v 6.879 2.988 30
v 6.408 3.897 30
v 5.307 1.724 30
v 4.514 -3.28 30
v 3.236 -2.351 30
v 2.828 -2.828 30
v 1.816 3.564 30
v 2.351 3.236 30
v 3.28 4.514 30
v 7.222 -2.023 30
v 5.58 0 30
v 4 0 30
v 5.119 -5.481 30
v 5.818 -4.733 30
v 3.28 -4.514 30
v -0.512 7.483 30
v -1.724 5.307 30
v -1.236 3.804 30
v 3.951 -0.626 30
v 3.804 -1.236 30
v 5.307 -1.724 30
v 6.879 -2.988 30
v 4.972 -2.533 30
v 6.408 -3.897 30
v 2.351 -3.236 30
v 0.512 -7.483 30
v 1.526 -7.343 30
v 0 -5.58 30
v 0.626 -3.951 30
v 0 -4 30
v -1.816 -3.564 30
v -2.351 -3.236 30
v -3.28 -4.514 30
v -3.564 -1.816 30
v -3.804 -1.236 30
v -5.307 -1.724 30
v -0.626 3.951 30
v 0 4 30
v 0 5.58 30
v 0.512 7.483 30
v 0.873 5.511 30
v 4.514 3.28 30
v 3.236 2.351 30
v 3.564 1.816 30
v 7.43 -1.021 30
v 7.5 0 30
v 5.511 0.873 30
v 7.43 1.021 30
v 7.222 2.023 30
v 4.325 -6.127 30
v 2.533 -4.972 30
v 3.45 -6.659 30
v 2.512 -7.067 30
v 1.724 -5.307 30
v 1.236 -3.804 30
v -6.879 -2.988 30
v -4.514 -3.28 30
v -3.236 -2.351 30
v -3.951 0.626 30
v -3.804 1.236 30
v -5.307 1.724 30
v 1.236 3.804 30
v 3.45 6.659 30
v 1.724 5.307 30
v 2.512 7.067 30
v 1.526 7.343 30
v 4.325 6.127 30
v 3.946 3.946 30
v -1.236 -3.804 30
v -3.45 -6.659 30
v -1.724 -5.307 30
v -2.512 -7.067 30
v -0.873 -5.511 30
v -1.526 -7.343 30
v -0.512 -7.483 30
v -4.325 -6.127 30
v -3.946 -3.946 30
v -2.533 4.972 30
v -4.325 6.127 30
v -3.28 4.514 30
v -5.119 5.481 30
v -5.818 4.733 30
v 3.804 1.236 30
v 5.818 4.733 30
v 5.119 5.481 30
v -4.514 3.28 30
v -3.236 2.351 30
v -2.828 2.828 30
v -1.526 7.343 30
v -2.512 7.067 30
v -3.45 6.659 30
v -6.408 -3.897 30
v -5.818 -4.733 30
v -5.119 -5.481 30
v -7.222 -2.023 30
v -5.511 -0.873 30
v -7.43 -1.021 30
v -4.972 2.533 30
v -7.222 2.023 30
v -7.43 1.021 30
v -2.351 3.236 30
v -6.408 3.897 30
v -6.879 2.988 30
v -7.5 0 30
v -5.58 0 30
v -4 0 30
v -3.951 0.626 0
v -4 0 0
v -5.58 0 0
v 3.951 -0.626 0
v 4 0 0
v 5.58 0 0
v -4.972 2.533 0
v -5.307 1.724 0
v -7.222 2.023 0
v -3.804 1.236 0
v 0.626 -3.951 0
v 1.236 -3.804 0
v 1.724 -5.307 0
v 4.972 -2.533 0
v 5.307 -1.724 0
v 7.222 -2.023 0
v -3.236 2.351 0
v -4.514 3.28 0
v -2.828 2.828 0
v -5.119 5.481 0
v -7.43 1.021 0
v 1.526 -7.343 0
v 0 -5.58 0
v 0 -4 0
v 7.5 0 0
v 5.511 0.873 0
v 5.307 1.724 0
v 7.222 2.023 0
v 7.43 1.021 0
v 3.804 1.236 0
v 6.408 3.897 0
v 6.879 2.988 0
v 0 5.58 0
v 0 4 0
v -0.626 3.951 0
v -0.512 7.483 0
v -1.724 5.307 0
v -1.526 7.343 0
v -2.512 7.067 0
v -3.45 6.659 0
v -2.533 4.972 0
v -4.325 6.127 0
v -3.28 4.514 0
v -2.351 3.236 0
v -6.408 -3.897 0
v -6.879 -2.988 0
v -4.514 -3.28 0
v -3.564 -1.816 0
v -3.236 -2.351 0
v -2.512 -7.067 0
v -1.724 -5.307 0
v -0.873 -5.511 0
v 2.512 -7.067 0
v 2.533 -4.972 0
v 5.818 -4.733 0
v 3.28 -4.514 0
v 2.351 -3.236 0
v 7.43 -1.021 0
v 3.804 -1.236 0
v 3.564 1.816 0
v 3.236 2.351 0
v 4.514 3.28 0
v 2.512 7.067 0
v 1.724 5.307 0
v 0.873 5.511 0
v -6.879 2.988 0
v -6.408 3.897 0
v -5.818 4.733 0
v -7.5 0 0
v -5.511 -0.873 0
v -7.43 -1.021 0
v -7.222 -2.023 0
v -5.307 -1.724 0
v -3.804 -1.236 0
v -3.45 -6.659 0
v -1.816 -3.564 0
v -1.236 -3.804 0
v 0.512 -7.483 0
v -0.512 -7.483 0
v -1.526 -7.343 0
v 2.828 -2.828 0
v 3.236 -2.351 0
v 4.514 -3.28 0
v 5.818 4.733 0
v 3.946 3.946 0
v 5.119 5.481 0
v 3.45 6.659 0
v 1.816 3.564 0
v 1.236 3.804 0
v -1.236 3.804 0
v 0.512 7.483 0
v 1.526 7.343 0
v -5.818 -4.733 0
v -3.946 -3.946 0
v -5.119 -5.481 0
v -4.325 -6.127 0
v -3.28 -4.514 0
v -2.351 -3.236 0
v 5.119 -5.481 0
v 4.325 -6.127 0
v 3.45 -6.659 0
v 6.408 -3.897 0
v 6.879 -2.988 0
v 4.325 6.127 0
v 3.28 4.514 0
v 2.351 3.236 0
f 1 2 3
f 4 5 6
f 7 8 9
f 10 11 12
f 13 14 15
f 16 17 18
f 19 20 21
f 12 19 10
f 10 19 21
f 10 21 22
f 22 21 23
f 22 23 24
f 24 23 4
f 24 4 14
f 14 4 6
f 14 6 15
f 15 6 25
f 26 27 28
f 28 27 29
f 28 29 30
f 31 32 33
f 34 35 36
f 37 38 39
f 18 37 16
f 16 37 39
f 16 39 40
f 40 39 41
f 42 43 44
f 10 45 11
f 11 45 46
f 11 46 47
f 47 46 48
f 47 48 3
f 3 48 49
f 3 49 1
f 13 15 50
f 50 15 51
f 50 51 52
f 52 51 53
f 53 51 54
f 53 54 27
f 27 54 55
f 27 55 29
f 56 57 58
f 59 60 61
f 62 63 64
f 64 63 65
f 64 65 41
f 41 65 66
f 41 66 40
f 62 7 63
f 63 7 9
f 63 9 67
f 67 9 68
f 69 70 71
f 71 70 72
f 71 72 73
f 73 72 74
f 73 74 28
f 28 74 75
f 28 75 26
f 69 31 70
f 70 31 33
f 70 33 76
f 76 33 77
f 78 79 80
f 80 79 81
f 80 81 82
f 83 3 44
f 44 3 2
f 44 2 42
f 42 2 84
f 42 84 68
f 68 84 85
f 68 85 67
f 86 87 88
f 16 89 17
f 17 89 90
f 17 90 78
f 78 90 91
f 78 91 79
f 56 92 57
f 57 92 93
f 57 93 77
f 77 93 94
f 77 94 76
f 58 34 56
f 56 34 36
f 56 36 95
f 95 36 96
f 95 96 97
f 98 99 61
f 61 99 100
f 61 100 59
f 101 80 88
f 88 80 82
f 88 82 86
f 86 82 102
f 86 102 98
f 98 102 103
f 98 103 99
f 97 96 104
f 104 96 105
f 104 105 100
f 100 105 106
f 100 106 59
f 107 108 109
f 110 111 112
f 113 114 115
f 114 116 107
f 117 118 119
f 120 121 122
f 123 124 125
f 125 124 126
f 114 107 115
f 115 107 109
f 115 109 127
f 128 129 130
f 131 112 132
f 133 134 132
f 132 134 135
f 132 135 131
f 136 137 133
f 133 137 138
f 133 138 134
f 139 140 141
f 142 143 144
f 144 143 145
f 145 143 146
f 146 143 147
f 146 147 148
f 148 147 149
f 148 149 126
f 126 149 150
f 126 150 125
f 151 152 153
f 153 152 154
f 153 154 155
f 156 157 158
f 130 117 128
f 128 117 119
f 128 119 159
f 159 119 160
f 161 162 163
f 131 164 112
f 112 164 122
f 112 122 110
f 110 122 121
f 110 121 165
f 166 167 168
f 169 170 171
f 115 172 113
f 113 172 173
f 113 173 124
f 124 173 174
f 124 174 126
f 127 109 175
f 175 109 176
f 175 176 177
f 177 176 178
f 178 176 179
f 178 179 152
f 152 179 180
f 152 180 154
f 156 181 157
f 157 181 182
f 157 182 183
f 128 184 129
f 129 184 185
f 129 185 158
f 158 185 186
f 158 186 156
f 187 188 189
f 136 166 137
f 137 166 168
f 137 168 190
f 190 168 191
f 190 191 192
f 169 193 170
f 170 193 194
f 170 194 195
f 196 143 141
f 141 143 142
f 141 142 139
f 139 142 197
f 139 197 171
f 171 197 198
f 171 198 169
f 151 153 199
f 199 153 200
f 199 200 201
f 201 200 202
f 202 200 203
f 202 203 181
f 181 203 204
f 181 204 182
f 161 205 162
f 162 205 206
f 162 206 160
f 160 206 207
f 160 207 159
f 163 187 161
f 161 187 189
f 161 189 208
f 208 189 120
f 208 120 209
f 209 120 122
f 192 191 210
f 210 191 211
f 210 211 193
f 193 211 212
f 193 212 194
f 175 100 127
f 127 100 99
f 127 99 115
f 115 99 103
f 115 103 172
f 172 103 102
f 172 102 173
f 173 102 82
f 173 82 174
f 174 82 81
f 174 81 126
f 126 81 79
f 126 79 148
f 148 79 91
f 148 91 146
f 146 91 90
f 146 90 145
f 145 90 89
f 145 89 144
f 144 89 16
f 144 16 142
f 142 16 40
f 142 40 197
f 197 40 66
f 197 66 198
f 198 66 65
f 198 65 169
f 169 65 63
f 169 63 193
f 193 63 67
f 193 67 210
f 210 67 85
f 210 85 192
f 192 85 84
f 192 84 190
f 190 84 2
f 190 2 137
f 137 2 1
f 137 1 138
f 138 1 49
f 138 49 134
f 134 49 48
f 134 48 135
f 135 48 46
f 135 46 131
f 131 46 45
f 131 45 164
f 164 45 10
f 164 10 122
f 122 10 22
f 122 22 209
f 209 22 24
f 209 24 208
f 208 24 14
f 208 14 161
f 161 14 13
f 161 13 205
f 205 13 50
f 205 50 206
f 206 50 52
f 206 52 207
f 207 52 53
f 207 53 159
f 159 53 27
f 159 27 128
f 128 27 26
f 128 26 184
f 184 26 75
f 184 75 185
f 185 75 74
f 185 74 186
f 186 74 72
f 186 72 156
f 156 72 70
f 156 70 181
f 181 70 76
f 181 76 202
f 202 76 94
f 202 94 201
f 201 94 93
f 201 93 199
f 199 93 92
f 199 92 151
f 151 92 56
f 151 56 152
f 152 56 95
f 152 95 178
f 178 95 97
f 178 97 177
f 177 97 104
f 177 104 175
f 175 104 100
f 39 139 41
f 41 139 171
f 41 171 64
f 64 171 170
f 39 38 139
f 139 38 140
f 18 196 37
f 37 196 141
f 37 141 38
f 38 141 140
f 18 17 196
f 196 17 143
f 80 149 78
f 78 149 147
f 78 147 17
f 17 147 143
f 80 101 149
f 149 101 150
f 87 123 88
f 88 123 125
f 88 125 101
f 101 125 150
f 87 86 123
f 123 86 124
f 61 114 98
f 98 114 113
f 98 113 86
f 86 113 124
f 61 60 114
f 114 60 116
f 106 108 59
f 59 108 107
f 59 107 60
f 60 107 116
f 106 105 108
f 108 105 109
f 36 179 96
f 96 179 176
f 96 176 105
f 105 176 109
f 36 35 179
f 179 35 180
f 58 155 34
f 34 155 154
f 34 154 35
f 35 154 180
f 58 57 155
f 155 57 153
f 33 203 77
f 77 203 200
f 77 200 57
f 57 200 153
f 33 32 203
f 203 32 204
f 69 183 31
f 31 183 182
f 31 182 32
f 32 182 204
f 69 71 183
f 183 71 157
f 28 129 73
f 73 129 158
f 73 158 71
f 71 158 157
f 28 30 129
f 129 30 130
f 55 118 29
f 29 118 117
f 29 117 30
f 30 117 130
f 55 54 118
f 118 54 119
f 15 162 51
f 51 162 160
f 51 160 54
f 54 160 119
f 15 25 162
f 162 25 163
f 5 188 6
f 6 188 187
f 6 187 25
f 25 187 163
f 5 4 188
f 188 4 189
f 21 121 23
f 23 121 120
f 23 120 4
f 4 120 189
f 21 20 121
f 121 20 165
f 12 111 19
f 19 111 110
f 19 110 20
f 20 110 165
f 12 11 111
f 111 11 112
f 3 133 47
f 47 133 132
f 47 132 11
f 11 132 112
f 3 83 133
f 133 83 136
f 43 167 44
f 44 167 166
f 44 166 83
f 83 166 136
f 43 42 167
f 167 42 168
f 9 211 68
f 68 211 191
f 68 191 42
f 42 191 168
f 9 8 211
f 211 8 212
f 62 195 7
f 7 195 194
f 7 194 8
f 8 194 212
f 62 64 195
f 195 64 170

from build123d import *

# Parameters (mm, degrees)
SKETCH_1_R      = 7.5
EXTRUDE_1_DEPTH = 30


with BuildPart() as part:
    # Эскиз1 → Бобышка-Вытянуть1 (new body)
    with BuildSketch(Plane.XY):
        Circle(SKETCH_1_R)
        with BuildLine():
            Line((0, 5.579989869), (0, 4))
            ThreePointArc((0, 4), (-0.62573786, 3.950753362), (-1.236067977, 3.804226065))
            Line((-1.236067977, 3.804226065), (-1.724311698, 5.306885726))
            ThreePointArc((-1.724311698, 5.306885726), (-2.533262389, 4.971807378), (-3.279835753, 4.514306633))
            Line((-3.279835753, 4.514306633), (-2.351141009, 3.236067977))
            ThreePointArc((-2.351141009, 3.236067977), (-2.828427125, 2.828427125), (-3.236067977, 2.351141009))
            Line((-3.236067977, 2.351141009), (-4.514306633, 3.279835753))
            ThreePointArc((-4.514306633, 3.279835753), (-4.971807378, 2.533262389), (-5.306885726, 1.724311698))
            Line((-5.306885726, 1.724311698), (-3.804226065, 1.236067977))
            ThreePointArc((-3.804226065, 1.236067977), (-3.950753362, 0.62573786), (-4, 0))
            Line((-4, 0), (-5.579989869, 0))
            ThreePointArc((-5.579989869, 0), (-5.511290934, -0.87290273), (-5.306885726, -1.724311698))
            Line((-5.306885726, -1.724311698), (-3.804226065, -1.236067977))
            ThreePointArc((-3.804226065, -1.236067977), (-3.564026097, -1.815961999), (-3.236067977, -2.351141009))
            Line((-3.236067977, -2.351141009), (-4.514306633, -3.279835753))
            ThreePointArc((-4.514306633, -3.279835753), (-3.945648675, -3.945648675), (-3.279835753, -4.514306633))
            Line((-3.279835753, -4.514306633), (-2.351141009, -3.236067977))
            ThreePointArc((-2.351141009, -3.236067977), (-1.815961999, -3.564026097), (-1.236067977, -3.804226065))
            Line((-1.236067977, -3.804226065), (-1.724311698, -5.306885726))
            ThreePointArc((-1.724311698, -5.306885726), (-0.87290273, -5.511290934), (0, -5.579989869))
            Line((0, -5.579989869), (0, -4))
            ThreePointArc((0, -4), (0.62573786, -3.950753362), (1.236067977, -3.804226065))
            Line((1.236067977, -3.804226065), (1.724311698, -5.306885726))
            ThreePointArc((1.724311698, -5.306885726), (2.533262389, -4.971807378), (3.279835753, -4.514306633))
            Line((3.279835753, -4.514306633), (2.351141009, -3.236067977))
            ThreePointArc((2.351141009, -3.236067977), (2.828427125, -2.828427125), (3.236067977, -2.351141009))
            Line((3.236067977, -2.351141009), (4.514306633, -3.279835753))
            ThreePointArc((4.514306633, -3.279835753), (4.971807378, -2.533262389), (5.306885726, -1.724311698))
            Line((5.306885726, -1.724311698), (3.804226065, -1.236067977))
            ThreePointArc((3.804226065, -1.236067977), (3.950753362, -0.62573786), (4, 0))
            Line((4, 0), (5.579989869, 0))
            ThreePointArc((5.579989869, 0), (5.511290934, 0.87290273), (5.306885726, 1.724311698))
            Line((5.306885726, 1.724311698), (3.804226065, 1.236067977))
            ThreePointArc((3.804226065, 1.236067977), (3.564026097, 1.815961999), (3.236067977, 2.351141009))
            Line((3.236067977, 2.351141009), (4.514306633, 3.279835753))
            ThreePointArc((4.514306633, 3.279835753), (3.945648675, 3.945648675), (3.279835753, 4.514306633))
            Line((3.279835753, 4.514306633), (2.351141009, 3.236067977))
            ThreePointArc((2.351141009, 3.236067977), (1.815961999, 3.564026097), (1.236067977, 3.804226065))
            Line((1.236067977, 3.804226065), (1.724311698, 5.306885726))
            ThreePointArc((1.724311698, 5.306885726), (0.87290273, 5.511290934), (0, 5.579989869))
        make_face(mode=Mode.SUBTRACT)
    extrude(amount=EXTRUDE_1_DEPTH)


solid = part.part
